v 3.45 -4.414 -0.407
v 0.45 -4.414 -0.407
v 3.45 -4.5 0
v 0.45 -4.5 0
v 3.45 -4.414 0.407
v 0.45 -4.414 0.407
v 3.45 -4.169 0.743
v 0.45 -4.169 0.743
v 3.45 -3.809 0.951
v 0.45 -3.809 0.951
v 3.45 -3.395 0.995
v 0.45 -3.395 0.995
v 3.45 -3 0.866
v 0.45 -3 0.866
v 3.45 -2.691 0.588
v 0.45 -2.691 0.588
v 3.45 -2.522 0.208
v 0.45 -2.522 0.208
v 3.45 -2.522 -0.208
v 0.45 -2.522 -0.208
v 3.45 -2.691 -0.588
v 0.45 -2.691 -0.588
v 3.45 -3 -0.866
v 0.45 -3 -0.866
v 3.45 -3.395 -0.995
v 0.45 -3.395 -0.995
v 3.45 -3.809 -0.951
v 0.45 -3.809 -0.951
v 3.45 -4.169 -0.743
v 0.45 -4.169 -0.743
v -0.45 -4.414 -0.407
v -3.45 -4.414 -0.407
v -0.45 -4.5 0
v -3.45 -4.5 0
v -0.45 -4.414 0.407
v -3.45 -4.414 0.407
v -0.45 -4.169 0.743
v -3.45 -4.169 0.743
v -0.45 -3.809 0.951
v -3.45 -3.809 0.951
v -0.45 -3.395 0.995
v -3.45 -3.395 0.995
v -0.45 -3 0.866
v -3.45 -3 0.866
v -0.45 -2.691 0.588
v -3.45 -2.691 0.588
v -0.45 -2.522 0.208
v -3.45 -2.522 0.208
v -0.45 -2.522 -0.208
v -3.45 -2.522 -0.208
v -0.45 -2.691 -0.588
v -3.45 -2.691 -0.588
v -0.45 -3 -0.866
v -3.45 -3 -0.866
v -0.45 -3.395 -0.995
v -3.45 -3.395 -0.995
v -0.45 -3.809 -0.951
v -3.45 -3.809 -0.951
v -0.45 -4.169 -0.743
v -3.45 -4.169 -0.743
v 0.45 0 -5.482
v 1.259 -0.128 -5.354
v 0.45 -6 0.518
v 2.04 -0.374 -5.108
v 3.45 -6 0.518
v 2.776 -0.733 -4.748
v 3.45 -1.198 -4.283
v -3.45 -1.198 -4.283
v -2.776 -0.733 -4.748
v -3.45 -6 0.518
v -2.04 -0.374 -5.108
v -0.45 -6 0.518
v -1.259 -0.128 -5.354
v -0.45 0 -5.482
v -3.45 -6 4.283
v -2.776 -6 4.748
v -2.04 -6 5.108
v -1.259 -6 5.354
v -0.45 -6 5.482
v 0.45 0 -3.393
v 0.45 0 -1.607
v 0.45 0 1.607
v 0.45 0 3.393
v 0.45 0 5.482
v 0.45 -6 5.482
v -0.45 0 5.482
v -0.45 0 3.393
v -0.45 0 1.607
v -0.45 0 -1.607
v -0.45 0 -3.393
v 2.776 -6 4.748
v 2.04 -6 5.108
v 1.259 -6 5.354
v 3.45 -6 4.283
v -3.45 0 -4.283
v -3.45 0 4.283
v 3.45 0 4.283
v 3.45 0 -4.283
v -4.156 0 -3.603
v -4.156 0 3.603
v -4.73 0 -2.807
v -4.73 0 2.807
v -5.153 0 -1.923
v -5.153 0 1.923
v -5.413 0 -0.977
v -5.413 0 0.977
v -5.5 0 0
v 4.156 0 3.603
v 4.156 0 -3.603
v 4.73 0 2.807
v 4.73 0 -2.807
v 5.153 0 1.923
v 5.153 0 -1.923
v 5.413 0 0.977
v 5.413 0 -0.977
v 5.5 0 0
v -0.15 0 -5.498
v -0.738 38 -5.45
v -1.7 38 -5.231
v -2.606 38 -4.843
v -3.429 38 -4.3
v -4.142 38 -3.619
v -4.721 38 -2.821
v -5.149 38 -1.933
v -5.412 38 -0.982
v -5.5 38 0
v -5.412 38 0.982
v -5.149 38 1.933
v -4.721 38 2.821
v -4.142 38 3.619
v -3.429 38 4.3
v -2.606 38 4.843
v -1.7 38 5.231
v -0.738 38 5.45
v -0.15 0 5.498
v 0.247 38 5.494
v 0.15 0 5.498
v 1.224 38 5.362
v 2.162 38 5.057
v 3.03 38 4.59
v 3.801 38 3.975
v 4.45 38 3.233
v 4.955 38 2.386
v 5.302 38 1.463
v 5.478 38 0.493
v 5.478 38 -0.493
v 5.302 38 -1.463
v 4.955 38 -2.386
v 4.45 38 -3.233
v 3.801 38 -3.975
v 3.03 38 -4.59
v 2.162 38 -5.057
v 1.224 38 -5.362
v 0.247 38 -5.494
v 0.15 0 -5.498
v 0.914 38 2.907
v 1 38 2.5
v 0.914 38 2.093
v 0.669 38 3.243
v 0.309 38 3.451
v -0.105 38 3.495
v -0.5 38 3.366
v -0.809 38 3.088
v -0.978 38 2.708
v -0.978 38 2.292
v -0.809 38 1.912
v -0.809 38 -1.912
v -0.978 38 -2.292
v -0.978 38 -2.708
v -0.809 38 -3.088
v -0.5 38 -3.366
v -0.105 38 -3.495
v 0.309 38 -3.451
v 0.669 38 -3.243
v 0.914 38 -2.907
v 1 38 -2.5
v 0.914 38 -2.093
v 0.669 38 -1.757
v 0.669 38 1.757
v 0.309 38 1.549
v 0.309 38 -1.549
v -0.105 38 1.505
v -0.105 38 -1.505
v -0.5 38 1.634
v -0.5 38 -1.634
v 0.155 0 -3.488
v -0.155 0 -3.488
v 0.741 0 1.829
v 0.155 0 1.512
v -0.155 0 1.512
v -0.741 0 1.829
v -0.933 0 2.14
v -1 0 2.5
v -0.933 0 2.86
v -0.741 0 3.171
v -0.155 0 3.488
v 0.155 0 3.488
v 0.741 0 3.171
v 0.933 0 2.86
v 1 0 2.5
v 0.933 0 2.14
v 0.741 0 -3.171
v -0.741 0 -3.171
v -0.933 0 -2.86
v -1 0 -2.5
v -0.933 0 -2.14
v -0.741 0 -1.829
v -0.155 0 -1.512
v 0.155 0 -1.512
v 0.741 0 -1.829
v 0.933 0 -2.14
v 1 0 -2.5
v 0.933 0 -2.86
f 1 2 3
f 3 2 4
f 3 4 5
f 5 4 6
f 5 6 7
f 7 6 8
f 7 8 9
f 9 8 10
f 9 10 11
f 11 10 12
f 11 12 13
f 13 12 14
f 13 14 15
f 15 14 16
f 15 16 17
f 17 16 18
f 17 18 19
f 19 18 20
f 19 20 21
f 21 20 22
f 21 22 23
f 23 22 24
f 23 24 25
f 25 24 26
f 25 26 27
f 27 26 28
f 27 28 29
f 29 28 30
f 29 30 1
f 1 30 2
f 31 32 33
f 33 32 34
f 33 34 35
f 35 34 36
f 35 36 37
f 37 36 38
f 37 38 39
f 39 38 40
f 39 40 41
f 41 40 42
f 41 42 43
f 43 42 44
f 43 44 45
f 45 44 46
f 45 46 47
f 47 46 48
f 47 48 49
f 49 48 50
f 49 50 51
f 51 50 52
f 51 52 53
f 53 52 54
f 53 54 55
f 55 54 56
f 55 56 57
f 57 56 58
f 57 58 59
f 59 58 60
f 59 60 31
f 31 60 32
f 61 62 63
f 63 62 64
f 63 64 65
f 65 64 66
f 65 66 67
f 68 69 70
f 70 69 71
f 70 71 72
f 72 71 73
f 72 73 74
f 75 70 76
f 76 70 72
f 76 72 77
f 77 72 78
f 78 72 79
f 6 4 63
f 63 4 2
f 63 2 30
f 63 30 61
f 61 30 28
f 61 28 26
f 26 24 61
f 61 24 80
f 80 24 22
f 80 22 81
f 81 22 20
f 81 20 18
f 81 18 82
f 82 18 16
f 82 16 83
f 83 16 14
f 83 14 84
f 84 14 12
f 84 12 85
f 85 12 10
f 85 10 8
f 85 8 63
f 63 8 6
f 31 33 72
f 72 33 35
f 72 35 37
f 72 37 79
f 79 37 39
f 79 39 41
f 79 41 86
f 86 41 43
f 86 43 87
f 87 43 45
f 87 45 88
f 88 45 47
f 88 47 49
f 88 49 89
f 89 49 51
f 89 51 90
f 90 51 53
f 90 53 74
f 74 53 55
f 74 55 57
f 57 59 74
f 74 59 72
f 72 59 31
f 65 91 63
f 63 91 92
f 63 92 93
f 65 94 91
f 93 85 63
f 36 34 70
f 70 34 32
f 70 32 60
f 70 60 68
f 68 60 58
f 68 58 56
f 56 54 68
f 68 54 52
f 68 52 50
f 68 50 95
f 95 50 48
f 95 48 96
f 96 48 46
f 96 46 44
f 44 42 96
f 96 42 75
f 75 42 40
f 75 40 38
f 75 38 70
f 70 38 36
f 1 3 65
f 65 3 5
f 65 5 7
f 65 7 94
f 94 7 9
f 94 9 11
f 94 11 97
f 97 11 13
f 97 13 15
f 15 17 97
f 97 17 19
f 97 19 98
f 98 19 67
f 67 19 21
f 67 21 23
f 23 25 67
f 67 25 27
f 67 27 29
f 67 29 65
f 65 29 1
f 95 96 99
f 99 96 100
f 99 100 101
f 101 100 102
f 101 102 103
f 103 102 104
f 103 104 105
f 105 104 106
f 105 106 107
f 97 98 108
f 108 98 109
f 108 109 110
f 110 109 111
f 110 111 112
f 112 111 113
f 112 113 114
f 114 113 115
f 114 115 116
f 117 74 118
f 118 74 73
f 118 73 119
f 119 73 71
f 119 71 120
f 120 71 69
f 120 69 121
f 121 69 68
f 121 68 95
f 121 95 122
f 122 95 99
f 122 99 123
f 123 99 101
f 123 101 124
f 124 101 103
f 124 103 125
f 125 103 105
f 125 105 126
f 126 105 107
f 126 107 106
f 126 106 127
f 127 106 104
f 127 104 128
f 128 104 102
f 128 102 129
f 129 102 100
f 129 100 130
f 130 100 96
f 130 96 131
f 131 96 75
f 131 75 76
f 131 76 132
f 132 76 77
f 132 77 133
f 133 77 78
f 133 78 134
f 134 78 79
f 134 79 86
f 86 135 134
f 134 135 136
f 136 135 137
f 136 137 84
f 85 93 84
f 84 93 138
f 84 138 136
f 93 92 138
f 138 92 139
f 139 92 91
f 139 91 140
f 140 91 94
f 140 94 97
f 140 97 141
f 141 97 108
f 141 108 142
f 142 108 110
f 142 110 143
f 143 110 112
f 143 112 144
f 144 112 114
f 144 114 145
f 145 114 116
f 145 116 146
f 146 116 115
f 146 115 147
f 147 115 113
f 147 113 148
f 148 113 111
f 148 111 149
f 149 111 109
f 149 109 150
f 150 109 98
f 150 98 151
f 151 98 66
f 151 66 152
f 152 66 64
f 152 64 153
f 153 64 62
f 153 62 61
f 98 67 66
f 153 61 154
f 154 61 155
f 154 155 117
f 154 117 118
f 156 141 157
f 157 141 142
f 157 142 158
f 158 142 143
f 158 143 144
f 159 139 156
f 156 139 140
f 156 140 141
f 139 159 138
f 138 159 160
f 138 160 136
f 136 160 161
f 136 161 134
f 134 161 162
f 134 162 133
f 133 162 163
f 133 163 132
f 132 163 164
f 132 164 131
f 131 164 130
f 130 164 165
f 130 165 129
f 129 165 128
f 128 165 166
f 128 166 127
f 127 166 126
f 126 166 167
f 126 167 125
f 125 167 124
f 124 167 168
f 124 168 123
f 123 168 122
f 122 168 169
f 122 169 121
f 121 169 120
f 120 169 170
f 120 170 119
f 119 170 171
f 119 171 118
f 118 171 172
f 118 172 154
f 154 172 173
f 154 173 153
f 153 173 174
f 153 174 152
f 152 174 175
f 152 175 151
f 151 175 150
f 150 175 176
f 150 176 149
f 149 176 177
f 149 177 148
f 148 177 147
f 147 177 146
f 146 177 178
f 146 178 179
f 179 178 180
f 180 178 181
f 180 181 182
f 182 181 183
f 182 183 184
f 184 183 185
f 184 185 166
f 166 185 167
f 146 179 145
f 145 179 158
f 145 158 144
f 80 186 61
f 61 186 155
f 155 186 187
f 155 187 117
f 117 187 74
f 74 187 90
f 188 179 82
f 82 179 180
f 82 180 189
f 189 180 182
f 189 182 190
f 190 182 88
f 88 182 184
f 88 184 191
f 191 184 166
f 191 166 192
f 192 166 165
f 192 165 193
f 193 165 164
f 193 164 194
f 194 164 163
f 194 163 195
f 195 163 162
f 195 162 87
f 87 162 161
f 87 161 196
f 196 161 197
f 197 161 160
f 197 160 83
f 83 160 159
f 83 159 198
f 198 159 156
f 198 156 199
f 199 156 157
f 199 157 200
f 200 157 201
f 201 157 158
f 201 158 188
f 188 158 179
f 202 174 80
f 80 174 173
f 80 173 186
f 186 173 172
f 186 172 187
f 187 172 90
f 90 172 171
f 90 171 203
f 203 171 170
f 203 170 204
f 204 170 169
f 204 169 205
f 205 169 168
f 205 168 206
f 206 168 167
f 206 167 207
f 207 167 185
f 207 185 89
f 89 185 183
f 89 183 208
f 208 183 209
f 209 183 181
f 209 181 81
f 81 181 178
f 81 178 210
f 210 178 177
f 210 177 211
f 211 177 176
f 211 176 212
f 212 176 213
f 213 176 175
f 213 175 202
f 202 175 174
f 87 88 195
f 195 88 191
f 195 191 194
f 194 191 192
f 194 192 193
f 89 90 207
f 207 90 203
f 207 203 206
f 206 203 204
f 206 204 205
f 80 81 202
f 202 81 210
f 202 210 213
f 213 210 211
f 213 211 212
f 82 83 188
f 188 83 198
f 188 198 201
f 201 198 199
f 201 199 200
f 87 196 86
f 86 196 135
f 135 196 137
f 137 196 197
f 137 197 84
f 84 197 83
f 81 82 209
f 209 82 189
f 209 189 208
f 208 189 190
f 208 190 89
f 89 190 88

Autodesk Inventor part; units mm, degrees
ref_plane "YZ Plane" through (0, 0, 0) normal (1, 0, 0) x (0, 1, 0)
ref_plane "XZ Plane" through (0, 0, 0) normal (0, 1, 0) x (-1, 0, 0)
ref_plane "XY Plane" through (0, 0, 0) normal (0, 0, 1) x (1, 0, 0)
sketch "Sketch1" plane through (0, 0, 0) normal (0, 1, 0) x (-1, 0, 0)
  circle A0 centre (0, 0) radius 5.5
  dimension "d0" = 11
extrude "Extrusion1" add sketch "Sketch1" along normal blind 38
sketch "Sketch6" plane through (0, 0, 0) normal (0, -1, 0) x (1, 0, 0)
  circle A0 centre (0, 0) radius 5.5 projected
  line L0 (3.45, 0) -> (3.45, -4.2834)
  line L1 (0.45, 0) -> (0.45, -5.4816)
  line L2 (3.45, -5.4816) -> (3.45, -4.2834)
  line L3 (3.45, -5.4816) -> (0.45, -5.4816)
  line L4 (0.45, 0) -> (0.45, 5.4816)
  line L5 (3.45, 5.3243) -> (3.45, 0)
  line L6 (3.45, 5.3243) -> (0.45, 5.4816)
  line L7 (0, -5.5) -> (0, 5.5)
  line L8 (-3.45, 0) -> (-3.45, -4.2834)
  line L9 (-0.45, 0) -> (-0.45, -5.4816)
  line L10 (-3.45, -5.4816) -> (-3.45, -4.2834)
  line L11 (-3.45, -5.4816) -> (-0.45, -5.4816)
  line L12 (-0.45, 0) -> (-0.45, 5.4816)
  line L13 (-3.45, 5.3243) -> (-3.45, 0)
  line L14 (-3.45, 5.3243) -> (-0.45, 5.4816)
  point P0 (-3.45, 4.2834)
  point P1 (3.45, 4.2834)
  dimension "d20" = 3
  dimension "d21" = 3
  dimension "d22" = 0.45
  dimension "d23" = 2.05
  dimension "d24" = 2.05
extrude "Extrusion5" add sketch "Sketch6" along normal blind 6 contours A0 L5 L0 L1 L4 | L12 L9 A0 L8 L13
sketch "Sketch8" plane through (0, 0, 0) normal (1, 0, 0) x (0, 1, 0)
  line L0 (0, -5.5) -> (38, -5.5) projected
  line L1 (0, -5.4816) -> (-6, -5.4816) projected
  line L2 (0, -5.4816) -> (0, 5.4816) projected
  line L3 (0, -5.4816) -> (-6, 0.5184)
  line L4 (0, -5.4816) -> (8.4853, -5.4816) construction
  line L5 (-6, -5.4816) -> (-6, 5.4816) projected
  line L6 (-6, 0.5184) -> (-6, -5.4816)
  point P0 (0, 0)
  dimension "d27" = 135
extrude "Extrusion6" cut sketch "Sketch8" along normal through all both and the other way through all
sketch "Sketch10" plane through (0, 0, 0) normal (1, 0, 0) x (0, 1, 0)
  circle A0 centre (-3.5, 0) radius 1
  line L0 (0, -5.5) -> (38, -5.5) projected
  line L1 (-6, 0.5184) -> (-6, 5.4816) projected
  point P0 (0, 0)
  dimension "d30" = 2
  dimension "d31" = 5.5
  dimension "d32" = 2.5
extrude "Extrusion7" cut sketch "Sketch10" along normal through all both and the other way through all
sketch "Sketch11" plane through (0, 38, 0) normal (0, 1, 0) x (1, 0, 0)
  circle A0 centre (0, 2.5) radius 1
  circle A1 centre (0, -2.5) radius 1
  point P0 (0, 0)
  dimension "d35" = 2
  dimension "d36" = 2
  dimension "d37" = 2.5
  dimension "d38" = 2.5
extrude "Extrusion8" cut sketch "Sketch11" against normal blind 38
properties part number "Part4 finger(index)"
